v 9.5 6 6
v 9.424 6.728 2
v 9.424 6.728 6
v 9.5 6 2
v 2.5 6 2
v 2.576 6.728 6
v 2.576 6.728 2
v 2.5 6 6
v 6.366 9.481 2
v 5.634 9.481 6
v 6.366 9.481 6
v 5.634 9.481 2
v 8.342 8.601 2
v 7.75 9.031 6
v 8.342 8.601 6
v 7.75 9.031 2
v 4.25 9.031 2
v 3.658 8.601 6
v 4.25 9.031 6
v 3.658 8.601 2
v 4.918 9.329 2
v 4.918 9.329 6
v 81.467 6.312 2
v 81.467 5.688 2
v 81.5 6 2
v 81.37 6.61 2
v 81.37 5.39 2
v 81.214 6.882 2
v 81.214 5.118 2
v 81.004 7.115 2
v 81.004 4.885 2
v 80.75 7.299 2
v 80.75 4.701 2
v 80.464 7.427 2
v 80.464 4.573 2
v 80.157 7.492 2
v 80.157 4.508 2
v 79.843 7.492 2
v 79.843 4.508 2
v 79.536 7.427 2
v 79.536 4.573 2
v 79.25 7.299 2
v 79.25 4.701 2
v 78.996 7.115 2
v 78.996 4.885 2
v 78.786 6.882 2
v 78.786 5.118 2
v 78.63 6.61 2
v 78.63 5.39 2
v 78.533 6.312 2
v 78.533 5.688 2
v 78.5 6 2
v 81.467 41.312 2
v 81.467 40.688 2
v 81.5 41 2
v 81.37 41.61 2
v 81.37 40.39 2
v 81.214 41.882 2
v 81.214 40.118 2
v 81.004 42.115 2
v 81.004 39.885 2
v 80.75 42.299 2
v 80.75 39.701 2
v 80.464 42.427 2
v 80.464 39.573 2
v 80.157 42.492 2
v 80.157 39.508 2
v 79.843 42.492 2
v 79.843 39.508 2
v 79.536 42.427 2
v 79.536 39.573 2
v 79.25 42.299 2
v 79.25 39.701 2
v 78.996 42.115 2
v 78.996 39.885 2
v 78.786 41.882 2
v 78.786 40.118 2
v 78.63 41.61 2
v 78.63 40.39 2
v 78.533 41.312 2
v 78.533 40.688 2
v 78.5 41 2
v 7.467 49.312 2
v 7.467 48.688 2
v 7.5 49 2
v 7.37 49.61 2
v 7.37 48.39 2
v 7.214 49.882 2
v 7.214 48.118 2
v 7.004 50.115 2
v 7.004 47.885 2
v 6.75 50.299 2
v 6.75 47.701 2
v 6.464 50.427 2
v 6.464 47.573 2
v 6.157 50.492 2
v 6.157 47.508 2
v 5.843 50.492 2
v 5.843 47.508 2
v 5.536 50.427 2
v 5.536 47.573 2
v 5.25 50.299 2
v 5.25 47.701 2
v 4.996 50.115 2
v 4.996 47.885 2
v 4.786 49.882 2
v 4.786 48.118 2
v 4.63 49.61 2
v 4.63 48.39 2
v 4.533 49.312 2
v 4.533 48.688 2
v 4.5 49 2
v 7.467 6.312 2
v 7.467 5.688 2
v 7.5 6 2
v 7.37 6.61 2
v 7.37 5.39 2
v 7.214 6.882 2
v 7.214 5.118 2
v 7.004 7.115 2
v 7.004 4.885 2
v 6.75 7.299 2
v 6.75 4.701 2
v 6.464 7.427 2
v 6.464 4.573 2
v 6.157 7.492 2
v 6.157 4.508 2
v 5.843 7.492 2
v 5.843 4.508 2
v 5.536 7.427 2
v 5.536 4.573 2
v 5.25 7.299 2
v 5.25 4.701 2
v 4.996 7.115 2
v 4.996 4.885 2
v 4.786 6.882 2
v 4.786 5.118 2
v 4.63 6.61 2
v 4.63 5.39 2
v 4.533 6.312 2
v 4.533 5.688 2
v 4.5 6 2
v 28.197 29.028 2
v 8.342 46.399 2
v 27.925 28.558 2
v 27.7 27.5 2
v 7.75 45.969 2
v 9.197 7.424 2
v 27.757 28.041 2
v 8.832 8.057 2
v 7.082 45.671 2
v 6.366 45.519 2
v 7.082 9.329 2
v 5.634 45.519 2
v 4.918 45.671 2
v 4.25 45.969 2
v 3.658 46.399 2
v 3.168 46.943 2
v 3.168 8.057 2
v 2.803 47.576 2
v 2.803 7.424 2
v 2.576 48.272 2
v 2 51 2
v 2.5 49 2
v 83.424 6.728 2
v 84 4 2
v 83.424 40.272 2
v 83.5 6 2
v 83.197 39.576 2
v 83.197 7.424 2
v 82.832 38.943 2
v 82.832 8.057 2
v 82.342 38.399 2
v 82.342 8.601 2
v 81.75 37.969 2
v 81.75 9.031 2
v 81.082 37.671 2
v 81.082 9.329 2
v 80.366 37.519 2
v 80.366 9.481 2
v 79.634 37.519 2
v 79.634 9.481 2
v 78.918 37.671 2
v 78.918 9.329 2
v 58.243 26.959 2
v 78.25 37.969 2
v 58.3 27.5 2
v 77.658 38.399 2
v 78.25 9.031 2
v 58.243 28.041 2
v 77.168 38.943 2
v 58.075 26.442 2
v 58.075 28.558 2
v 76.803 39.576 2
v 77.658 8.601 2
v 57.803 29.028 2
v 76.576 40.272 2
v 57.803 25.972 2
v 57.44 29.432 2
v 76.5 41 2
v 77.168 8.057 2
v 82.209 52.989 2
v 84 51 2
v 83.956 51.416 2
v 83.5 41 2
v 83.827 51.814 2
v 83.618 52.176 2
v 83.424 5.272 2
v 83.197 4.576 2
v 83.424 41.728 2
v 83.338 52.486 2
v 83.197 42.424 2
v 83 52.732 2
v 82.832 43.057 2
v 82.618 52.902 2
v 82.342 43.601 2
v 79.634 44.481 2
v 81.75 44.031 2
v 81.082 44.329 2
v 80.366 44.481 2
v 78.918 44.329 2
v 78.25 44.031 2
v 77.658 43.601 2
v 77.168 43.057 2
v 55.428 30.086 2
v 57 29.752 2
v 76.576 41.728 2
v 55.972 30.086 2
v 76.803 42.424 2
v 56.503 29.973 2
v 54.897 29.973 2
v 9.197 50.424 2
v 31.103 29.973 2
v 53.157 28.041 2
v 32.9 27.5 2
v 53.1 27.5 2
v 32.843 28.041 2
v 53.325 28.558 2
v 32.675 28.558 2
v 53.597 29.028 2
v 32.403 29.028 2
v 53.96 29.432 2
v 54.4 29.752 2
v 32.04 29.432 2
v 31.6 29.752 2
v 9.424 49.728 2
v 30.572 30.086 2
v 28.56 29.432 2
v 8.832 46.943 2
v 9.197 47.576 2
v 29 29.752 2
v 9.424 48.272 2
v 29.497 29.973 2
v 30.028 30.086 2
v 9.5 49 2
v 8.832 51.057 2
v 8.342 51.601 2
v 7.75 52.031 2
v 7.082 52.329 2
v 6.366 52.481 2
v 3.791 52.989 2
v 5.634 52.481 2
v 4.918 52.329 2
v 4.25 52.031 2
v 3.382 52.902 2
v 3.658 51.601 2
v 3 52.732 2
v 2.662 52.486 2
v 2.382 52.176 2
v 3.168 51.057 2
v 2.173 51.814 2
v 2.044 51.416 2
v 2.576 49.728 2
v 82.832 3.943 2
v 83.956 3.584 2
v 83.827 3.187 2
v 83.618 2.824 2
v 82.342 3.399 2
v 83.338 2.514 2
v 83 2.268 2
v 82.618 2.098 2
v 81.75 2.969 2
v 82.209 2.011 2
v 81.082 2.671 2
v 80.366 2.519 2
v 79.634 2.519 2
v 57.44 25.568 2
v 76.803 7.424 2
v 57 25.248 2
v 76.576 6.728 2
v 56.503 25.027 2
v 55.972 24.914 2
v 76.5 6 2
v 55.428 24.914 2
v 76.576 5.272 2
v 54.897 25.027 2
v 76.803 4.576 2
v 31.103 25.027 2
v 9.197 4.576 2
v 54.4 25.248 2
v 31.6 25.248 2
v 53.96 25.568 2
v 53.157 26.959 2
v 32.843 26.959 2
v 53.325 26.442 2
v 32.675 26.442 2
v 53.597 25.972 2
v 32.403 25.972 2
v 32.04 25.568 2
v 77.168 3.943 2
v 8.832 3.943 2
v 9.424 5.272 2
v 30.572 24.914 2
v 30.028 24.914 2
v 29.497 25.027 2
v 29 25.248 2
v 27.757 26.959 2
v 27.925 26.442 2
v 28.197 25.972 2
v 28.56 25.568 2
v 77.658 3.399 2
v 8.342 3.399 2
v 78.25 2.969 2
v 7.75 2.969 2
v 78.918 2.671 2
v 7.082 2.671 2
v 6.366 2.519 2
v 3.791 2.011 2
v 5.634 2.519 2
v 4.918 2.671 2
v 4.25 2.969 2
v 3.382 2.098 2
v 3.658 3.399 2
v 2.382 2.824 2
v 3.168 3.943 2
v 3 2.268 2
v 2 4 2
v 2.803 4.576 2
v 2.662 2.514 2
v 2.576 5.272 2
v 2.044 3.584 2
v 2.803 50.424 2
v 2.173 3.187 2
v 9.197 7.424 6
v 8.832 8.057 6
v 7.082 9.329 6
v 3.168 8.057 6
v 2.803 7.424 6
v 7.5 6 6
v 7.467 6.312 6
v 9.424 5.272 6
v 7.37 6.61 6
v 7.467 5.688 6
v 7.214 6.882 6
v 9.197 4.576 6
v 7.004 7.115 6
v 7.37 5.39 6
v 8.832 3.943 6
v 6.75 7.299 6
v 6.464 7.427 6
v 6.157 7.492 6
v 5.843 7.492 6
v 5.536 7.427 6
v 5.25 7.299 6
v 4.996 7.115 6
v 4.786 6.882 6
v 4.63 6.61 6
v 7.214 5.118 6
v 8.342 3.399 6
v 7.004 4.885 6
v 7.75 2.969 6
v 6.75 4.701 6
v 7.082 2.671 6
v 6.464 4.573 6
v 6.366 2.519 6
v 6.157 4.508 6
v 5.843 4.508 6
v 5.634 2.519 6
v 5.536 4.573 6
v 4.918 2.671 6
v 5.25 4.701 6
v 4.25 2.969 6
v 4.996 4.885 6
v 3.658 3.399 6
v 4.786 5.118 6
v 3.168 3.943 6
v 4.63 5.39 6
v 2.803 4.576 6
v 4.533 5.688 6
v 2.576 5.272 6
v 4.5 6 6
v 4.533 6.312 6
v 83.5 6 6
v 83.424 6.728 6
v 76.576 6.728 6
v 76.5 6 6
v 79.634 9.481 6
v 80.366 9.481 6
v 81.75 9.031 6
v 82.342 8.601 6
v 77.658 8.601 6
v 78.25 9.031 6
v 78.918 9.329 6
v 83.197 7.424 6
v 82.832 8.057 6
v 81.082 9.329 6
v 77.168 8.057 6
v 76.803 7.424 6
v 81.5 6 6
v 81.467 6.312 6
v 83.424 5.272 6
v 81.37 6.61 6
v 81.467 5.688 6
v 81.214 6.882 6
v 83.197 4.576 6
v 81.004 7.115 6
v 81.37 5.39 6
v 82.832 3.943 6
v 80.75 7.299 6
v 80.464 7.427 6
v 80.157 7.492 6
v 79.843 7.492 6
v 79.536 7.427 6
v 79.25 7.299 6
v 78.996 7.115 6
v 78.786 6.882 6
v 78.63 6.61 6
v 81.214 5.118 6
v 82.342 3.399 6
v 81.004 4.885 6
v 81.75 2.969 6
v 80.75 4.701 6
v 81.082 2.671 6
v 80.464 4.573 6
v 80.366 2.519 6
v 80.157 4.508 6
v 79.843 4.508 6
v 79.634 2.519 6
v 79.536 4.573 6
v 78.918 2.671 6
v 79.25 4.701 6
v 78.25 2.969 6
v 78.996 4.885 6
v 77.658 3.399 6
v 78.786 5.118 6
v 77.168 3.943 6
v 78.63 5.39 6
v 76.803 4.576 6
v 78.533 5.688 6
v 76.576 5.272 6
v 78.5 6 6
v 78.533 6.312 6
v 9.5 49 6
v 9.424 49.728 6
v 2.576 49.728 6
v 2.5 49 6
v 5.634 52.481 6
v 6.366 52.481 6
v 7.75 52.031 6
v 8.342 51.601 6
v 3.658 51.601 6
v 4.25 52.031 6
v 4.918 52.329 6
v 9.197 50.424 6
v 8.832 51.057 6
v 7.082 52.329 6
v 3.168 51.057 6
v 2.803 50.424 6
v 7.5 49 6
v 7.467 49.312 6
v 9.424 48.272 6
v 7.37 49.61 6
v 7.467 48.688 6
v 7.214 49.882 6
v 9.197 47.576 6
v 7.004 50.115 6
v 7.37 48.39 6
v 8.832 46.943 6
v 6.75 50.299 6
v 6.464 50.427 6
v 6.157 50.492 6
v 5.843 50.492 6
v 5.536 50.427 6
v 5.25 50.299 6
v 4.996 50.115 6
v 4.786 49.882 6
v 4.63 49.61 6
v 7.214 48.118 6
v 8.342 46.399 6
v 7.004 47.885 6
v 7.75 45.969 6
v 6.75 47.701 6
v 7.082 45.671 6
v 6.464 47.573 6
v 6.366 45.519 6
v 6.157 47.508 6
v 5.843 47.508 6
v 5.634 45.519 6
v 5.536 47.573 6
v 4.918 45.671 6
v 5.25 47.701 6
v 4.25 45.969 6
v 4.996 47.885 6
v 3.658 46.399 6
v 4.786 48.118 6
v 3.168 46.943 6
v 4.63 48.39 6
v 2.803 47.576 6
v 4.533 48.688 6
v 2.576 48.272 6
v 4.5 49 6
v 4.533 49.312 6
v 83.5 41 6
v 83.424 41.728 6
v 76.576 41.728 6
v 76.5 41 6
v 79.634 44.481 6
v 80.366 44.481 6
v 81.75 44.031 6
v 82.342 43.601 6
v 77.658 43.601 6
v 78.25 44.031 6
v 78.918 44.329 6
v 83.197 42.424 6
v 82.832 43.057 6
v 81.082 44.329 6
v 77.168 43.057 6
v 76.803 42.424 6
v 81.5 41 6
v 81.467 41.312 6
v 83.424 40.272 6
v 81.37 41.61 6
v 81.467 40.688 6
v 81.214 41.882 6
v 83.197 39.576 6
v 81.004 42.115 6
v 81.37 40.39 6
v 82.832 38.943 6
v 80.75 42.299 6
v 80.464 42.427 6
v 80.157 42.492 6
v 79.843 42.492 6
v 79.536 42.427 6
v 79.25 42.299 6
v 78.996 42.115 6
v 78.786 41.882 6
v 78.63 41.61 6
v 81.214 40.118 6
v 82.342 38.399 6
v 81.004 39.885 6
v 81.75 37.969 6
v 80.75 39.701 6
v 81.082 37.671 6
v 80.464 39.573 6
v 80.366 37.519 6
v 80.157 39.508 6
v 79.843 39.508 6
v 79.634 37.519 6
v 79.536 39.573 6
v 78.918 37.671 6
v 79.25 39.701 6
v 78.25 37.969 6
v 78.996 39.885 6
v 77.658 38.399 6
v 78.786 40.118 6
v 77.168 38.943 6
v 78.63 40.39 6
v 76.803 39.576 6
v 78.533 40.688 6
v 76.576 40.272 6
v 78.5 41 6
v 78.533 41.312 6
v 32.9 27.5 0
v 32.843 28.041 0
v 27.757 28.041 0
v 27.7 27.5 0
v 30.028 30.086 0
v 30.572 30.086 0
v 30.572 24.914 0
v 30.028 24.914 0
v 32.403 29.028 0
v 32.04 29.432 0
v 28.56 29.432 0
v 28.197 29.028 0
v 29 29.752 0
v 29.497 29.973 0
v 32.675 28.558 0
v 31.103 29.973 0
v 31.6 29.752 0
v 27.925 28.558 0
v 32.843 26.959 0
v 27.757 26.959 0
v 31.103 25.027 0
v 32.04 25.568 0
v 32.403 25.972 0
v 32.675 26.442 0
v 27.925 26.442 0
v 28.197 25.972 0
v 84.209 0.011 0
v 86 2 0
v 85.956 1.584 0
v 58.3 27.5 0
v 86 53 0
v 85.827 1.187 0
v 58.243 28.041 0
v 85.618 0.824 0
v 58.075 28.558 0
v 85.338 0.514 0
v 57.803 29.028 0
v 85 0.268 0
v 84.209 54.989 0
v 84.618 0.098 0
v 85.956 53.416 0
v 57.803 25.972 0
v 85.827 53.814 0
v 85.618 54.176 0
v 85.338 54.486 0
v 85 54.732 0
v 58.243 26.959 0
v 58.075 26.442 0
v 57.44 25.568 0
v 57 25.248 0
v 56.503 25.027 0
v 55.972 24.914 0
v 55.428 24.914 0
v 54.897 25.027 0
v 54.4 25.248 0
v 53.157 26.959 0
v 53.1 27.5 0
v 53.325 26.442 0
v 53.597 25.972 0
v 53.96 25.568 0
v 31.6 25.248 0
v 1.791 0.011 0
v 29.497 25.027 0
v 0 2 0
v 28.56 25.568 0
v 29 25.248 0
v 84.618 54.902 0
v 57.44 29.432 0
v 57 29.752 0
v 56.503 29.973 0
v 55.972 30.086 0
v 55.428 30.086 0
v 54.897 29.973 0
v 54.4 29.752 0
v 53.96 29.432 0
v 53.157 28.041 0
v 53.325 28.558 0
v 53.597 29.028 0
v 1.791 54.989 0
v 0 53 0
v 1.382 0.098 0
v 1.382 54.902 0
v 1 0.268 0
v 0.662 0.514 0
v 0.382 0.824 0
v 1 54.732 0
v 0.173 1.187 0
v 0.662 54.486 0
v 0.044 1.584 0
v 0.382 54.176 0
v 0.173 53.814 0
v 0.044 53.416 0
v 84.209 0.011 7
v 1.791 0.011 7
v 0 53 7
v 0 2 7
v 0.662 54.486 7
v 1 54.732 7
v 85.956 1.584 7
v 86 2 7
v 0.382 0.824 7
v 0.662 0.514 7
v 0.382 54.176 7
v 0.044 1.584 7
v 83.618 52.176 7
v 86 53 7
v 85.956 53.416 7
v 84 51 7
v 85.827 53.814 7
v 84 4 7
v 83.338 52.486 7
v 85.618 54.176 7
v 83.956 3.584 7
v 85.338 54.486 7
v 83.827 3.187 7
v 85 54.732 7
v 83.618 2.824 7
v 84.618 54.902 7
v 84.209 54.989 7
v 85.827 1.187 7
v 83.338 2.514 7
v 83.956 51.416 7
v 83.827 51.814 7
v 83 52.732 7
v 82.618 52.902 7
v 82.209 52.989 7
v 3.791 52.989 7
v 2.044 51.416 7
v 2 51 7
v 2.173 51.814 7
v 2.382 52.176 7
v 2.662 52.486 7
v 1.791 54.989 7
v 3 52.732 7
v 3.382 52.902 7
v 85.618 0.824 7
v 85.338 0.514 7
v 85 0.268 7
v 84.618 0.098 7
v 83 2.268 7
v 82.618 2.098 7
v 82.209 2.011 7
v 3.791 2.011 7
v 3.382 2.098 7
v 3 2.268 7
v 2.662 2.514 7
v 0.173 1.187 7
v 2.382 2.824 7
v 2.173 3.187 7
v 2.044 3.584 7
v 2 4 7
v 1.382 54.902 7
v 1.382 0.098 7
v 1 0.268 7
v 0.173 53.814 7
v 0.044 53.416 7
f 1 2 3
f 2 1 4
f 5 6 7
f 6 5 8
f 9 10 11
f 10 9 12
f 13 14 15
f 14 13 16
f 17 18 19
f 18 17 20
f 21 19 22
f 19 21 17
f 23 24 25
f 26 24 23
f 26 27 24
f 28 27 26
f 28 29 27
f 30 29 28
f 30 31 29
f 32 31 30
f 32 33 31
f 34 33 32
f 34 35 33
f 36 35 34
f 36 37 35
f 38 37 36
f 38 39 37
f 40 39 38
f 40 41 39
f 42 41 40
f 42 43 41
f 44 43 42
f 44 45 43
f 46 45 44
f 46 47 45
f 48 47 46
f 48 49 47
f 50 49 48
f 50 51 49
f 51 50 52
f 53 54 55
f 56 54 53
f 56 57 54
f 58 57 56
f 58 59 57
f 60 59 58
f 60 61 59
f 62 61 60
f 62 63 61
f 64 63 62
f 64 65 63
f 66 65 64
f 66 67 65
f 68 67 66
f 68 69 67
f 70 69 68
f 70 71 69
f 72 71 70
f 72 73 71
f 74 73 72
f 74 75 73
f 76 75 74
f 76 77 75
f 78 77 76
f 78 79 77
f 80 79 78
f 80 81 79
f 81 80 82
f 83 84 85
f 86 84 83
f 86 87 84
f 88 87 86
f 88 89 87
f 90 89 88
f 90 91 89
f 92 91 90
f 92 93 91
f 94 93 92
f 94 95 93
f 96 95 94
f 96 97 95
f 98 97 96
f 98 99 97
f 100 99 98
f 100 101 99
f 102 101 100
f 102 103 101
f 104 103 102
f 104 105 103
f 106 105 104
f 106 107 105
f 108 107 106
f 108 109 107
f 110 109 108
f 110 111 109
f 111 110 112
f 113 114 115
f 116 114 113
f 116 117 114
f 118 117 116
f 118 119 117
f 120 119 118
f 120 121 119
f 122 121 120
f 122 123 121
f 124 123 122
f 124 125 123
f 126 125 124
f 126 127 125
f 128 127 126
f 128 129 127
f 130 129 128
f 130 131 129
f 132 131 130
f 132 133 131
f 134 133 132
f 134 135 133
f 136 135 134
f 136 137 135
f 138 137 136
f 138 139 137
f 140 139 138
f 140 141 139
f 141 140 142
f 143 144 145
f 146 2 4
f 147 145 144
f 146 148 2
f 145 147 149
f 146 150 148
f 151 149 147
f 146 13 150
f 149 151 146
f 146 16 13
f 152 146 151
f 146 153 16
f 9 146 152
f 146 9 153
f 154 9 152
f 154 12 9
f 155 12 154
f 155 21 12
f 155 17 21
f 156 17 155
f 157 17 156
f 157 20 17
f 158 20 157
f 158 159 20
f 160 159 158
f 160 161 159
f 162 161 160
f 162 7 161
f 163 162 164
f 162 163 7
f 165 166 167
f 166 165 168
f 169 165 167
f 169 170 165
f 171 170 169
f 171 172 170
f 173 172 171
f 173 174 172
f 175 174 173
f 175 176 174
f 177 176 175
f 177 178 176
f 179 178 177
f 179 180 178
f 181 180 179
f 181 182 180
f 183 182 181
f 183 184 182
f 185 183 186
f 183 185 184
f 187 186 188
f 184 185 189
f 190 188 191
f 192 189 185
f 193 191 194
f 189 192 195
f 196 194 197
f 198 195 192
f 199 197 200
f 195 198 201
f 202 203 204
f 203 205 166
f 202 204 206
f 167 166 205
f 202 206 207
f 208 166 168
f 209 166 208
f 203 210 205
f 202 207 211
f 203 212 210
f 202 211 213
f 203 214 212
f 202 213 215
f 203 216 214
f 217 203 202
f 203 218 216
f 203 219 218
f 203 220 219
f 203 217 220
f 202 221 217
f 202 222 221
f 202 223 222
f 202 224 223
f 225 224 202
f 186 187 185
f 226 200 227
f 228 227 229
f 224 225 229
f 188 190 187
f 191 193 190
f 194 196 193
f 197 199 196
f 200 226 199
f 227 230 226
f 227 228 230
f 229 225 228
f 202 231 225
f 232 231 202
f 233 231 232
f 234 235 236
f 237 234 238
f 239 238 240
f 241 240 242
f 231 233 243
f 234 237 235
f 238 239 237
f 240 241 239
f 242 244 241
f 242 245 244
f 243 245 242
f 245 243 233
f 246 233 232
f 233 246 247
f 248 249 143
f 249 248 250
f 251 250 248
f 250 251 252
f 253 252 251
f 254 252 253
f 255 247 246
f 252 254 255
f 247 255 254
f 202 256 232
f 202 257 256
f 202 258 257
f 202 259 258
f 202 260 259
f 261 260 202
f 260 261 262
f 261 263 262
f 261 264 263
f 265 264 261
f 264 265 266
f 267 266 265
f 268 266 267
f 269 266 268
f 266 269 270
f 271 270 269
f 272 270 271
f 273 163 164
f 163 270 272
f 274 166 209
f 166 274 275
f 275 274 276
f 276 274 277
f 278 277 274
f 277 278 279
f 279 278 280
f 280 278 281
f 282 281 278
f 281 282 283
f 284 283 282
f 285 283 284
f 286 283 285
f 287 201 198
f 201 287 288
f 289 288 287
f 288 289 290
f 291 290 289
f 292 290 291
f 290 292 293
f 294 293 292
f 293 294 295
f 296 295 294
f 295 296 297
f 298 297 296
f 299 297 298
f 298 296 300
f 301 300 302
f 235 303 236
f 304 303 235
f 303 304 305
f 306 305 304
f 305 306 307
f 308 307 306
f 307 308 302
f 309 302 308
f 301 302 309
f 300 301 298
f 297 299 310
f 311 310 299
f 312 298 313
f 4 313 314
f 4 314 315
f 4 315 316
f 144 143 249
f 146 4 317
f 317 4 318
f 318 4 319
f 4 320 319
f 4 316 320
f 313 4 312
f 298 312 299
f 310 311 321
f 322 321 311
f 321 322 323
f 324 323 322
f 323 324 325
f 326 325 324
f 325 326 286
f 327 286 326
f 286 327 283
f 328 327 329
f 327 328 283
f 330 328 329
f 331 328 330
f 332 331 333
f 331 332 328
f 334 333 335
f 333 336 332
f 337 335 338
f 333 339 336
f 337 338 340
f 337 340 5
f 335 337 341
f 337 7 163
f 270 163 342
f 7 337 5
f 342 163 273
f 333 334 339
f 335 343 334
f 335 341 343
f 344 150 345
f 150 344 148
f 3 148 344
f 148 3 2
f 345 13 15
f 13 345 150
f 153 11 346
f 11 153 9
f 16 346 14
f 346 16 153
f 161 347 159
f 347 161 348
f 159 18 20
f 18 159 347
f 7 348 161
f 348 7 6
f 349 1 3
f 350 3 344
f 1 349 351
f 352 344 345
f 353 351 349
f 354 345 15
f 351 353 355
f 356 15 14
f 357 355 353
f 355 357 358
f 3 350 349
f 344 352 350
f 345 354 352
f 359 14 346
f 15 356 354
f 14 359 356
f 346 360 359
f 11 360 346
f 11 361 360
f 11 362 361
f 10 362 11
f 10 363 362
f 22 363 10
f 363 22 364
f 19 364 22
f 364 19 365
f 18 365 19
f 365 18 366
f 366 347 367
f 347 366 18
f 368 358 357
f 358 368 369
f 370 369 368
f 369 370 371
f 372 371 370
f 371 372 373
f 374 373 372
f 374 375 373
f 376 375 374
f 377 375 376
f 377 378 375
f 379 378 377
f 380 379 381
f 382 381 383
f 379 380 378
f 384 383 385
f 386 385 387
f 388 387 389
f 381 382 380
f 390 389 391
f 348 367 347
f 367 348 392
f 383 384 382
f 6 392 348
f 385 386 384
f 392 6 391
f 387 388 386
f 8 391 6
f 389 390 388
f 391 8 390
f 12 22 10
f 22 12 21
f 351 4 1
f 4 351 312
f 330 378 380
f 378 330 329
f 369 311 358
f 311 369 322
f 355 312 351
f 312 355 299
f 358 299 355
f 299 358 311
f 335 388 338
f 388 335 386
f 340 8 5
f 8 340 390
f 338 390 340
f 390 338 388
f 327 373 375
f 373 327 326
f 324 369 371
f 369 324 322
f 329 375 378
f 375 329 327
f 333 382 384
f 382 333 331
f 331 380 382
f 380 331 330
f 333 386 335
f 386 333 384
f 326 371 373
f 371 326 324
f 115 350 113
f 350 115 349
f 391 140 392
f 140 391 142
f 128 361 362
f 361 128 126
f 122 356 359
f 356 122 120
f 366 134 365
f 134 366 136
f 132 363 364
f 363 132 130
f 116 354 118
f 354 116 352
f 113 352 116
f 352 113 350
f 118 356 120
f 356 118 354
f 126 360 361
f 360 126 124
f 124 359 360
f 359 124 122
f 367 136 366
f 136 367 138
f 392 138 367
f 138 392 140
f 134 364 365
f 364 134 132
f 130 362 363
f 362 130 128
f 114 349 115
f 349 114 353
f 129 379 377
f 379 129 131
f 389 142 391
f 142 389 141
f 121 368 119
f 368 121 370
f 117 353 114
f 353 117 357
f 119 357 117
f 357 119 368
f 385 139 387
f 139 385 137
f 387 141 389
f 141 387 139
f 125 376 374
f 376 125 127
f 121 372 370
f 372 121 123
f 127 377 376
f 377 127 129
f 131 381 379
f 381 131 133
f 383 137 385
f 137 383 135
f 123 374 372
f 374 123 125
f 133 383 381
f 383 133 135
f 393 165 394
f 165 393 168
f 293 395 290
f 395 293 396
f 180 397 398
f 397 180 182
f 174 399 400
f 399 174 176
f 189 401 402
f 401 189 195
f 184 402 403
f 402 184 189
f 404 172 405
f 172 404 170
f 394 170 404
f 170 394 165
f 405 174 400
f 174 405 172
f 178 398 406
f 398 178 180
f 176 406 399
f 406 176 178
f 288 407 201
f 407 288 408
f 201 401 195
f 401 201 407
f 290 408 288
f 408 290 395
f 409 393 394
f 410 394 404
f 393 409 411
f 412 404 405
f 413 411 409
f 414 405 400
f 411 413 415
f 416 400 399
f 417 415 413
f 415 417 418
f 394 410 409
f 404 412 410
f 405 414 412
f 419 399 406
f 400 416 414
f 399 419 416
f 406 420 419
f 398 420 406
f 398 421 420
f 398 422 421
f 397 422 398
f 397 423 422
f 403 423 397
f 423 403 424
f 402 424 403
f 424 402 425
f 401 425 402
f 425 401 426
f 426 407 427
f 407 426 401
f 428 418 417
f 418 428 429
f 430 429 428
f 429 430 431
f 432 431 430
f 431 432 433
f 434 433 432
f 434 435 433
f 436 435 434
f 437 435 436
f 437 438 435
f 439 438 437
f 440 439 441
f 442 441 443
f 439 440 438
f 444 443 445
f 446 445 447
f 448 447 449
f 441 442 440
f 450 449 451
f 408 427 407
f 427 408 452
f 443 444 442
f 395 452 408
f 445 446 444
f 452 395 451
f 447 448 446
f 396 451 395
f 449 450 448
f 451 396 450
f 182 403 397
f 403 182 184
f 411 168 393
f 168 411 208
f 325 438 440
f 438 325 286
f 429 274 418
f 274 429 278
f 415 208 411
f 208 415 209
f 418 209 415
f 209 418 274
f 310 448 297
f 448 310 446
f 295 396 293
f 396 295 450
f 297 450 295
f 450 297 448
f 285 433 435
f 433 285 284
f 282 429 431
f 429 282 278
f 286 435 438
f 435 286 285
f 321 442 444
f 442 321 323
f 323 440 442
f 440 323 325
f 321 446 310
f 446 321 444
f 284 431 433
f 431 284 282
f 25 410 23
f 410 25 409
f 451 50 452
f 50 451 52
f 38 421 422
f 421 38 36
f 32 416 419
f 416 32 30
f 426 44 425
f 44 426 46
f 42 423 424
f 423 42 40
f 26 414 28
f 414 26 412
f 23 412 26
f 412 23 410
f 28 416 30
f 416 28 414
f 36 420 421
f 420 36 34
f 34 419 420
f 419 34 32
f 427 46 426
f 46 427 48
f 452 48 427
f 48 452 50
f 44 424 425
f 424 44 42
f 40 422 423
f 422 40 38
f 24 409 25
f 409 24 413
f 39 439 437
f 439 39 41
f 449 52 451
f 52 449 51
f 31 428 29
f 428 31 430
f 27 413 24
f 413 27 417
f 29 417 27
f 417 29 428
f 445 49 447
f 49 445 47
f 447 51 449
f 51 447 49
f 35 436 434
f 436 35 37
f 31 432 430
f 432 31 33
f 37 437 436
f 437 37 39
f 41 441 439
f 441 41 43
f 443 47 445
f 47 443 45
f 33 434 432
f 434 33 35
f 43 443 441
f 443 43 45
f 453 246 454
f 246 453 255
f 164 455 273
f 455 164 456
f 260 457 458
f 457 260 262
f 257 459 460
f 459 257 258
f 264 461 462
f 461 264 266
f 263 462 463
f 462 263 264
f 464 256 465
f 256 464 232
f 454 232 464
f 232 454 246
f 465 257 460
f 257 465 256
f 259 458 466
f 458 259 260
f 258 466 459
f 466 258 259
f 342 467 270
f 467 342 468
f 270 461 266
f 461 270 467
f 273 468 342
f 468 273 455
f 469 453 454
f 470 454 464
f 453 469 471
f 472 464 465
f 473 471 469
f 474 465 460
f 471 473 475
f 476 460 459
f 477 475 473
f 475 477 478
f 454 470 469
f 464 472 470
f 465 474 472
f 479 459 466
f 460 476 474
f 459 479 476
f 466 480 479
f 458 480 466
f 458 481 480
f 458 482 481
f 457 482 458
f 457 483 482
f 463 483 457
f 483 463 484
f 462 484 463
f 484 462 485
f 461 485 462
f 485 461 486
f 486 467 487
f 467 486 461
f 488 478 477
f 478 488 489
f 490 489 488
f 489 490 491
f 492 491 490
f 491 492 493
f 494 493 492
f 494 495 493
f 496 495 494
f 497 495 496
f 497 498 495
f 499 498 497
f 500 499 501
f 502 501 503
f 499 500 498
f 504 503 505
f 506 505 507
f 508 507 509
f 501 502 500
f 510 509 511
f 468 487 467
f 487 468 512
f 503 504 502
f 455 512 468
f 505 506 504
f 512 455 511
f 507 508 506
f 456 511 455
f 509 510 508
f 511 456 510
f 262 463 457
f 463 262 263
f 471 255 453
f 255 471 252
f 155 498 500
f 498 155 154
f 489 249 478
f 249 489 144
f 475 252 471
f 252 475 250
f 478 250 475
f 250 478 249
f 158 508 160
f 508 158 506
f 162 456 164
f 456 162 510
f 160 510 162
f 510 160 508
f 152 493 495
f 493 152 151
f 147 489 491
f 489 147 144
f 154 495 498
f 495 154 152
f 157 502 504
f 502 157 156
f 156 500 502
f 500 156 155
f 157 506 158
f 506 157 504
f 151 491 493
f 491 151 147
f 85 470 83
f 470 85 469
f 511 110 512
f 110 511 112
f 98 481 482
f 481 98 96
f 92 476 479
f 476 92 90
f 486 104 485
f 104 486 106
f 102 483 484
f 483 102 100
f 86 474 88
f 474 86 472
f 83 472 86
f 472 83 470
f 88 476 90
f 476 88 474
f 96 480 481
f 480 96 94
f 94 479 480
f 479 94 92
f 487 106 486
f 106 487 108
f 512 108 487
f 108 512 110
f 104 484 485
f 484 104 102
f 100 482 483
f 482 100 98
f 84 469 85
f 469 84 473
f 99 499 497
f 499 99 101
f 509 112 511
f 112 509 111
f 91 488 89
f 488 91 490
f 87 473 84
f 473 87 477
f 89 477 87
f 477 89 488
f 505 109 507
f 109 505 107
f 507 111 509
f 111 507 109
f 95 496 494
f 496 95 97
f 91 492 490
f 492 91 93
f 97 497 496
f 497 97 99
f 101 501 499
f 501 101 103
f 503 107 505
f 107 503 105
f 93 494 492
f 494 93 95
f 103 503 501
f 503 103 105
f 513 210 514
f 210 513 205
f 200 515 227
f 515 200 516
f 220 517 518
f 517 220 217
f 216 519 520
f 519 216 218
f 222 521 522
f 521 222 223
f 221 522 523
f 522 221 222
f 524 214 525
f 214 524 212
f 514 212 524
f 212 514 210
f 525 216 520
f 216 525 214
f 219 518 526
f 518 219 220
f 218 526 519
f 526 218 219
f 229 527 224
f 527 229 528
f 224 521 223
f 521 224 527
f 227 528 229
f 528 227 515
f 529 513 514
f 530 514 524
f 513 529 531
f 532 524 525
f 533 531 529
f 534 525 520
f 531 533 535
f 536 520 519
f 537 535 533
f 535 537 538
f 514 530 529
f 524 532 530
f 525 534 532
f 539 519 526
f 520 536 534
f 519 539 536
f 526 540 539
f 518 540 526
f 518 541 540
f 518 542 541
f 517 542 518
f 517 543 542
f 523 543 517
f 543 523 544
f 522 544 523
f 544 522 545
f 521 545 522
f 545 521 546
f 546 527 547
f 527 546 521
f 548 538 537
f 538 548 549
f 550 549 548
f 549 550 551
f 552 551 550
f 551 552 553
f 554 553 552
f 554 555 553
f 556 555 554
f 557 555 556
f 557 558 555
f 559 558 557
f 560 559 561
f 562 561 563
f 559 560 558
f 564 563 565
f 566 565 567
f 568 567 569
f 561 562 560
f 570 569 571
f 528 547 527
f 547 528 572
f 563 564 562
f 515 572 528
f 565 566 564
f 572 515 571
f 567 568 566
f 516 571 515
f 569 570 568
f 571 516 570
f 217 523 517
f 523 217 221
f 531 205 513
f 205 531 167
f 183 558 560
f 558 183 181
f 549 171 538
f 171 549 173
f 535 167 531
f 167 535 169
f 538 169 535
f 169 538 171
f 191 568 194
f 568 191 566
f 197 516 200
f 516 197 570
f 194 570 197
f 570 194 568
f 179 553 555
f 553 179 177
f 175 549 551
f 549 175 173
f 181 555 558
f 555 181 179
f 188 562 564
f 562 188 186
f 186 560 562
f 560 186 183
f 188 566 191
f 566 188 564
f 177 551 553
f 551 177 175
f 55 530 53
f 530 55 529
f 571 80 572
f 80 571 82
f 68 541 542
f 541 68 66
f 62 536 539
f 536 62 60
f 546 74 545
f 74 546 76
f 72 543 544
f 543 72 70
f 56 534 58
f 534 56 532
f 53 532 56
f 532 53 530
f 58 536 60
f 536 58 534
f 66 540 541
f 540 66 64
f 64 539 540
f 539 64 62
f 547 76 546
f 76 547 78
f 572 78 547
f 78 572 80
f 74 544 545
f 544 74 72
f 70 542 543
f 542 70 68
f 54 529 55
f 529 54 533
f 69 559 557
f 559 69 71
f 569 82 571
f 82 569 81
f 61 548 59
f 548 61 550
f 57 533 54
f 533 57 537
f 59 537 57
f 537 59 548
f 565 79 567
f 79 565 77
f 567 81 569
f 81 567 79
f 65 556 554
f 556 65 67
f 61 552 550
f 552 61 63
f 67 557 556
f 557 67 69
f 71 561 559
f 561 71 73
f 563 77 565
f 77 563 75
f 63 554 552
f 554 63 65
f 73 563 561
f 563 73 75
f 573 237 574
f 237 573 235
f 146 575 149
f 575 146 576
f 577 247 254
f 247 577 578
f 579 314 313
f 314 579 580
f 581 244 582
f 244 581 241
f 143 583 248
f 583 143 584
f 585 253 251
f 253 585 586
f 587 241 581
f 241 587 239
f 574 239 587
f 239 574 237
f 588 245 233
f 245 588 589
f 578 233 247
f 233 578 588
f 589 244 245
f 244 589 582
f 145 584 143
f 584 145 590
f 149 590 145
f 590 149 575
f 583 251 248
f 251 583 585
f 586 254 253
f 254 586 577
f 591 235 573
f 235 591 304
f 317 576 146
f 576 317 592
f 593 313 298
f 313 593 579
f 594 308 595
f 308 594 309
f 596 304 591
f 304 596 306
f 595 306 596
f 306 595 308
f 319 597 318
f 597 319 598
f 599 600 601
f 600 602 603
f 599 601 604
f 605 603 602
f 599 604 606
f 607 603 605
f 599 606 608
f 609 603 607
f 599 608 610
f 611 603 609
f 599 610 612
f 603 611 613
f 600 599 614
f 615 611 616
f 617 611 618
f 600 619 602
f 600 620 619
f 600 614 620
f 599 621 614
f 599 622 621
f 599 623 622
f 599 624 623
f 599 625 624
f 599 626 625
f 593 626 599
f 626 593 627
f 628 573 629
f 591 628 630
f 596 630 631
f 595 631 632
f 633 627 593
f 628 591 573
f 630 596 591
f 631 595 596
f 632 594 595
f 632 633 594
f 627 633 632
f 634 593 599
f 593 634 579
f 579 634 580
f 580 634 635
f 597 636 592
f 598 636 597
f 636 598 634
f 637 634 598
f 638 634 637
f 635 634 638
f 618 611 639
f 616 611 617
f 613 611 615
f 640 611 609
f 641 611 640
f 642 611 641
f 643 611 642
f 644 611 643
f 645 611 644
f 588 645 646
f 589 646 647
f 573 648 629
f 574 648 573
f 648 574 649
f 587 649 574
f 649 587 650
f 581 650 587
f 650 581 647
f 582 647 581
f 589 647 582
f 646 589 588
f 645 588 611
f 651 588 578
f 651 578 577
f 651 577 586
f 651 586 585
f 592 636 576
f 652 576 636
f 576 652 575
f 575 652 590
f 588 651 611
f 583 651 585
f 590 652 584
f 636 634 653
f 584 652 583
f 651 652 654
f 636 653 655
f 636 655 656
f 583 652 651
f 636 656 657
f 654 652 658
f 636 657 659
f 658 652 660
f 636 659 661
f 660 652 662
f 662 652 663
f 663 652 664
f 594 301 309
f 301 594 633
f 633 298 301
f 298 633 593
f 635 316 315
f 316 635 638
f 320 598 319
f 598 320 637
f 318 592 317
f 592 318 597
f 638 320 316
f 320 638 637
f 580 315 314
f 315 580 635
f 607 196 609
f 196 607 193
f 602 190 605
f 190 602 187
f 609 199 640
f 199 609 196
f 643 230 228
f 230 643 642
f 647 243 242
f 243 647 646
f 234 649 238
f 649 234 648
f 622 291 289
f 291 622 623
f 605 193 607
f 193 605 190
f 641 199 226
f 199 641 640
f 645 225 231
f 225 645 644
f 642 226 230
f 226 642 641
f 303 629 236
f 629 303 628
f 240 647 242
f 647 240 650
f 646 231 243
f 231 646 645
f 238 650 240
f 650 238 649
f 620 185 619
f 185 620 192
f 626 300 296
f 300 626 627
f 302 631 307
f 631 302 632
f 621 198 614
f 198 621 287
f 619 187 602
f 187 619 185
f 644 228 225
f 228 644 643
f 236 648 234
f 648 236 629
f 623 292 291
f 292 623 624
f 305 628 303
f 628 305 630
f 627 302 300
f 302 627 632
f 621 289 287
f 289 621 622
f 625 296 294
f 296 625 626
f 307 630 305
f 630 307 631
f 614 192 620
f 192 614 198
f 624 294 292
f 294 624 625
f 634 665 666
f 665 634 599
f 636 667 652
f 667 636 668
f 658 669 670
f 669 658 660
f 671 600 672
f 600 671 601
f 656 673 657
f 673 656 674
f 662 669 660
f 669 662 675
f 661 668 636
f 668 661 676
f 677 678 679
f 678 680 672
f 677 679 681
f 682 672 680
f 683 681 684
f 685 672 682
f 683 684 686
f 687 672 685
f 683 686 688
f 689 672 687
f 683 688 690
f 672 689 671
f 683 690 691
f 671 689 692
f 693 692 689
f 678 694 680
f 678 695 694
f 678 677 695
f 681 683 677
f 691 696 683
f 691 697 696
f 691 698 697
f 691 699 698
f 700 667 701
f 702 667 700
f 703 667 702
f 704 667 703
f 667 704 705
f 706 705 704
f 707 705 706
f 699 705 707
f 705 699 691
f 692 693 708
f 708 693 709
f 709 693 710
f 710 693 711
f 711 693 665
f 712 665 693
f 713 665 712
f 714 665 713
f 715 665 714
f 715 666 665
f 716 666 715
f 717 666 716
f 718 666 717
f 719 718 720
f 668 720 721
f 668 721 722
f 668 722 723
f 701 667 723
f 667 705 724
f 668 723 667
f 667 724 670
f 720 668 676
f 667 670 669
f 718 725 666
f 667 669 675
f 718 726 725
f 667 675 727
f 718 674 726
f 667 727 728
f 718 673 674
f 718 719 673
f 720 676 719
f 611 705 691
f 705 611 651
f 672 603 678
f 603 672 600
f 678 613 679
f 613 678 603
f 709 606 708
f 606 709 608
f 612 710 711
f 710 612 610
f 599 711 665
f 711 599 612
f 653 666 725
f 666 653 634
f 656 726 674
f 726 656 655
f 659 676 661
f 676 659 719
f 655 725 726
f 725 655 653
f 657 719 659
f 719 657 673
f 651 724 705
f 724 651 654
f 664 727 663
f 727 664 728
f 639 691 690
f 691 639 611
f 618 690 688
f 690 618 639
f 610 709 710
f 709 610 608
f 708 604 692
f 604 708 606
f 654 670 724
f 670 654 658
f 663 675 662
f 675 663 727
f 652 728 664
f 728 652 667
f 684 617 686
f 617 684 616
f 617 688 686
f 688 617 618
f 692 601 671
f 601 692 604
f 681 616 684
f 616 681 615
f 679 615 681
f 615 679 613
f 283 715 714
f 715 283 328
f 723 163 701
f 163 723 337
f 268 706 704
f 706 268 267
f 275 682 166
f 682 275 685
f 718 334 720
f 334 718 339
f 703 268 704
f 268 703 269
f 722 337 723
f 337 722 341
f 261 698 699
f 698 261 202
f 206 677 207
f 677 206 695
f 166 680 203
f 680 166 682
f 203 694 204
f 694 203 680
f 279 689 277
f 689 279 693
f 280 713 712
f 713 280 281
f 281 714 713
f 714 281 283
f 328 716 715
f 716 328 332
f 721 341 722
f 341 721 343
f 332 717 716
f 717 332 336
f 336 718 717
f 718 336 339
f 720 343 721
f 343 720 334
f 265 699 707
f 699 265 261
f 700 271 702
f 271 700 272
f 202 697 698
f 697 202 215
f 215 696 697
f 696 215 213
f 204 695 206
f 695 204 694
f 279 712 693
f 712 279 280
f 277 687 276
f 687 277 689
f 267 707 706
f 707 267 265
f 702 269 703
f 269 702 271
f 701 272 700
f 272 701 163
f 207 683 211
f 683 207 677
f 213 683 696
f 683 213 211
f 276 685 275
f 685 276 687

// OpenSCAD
// file: ../../SoMakeIt-Keyring/logo.scad
/*
 * So Make It (http://www.somakeit.org.uk/) Logo Key Ring
 *
 * Copyright (c) 2013 Mark Hindess & Bracken Dawson
 * License:
 *   Creative Commons Attribution-ShareAlike 3.0 Unported License
 *   http://creativecommons.org/licenses/by-sa/3.0
 */

thickness = 2.5;
size = 30;
corner_radius = 6;
hole_radius = 2;
$fn = 30;

somakeit_logo(thickness, size, corner_radius, hole_radius, 30);

module somakeit_logo(thickness, size, corner_radius, hole_radius, $fn) {

difference() {

  // simple rounded square
  hull() {
    translate([corner_radius, corner_radius, 0])
      cylinder(r = corner_radius, h = thickness, center = true);
    translate([size-corner_radius, corner_radius, 0])
      cylinder(r = corner_radius, h = thickness, center = true);
    translate([size-corner_radius, size-corner_radius, 0])
      cylinder(r = corner_radius, h = thickness, center = true);
    translate([corner_radius, size-corner_radius, 0])
      cylinder(r = corner_radius, h = thickness, center = true);
  }
  // slightly off center to allow for "handle"
  translate([size/2, size/2.3, 0]) {
    difference() {
      // large octagon
      rotate([0,0,22.5])
        cylinder(r = size/3, h = thickness+2, center = true, $fn = 8);

      // central bar
      translate([0,-(1+size/6),-1])
        cube([size/4, 1+size/3, thickness+3], center = true);
      // octagonal end of central bar
      rotate([0,0,22.5])
        cylinder(r = size/(8*cos(22.5)), h = thickness+3,
                 $fn = 8, center = true);
    }

    // handle
    translate([0,size/3,-1])
      cube([size/4, size/4, thickness+3], center = true);
  }

  // hole for attachment
  translate([size-hole_radius-(corner_radius/2),
             size-hole_radius-(corner_radius/2), 0])
    cylinder(r = hole_radius, h = thickness+2, center = true);
}

}  // module somakeit_logo
// main file
// *************************************************************************
/*
This program is free software: you can redistribute it and/or modify
it under the terms of the GNU General Public License as published by
the Free Software Foundation, either version 3 of the License, or
(at your option) any later version.

This program is distributed in the hope that it will be useful,
but WITHOUT ANY WARRANTY; without even the implied warranty of
MERCHANTABILITY or FITNESS FOR A PARTICULAR PURPOSE.  See the
GNU General Public License for more details.

You should have received a copy of the GNU General Public License
along with this program.  If not, see <http://www.gnu.org/licenses/>.
*/

// *************************************************************************

use <MCAD/polyholes.scad>;

// Box configuration
eps = 1.0;
wall_thickness         =   2.0;    // mm
box_external_length   = 81 + eps + wall_thickness * 2.0;    // mm
box_external_width    = 50 + eps + wall_thickness * 2.0;    // mm
box_external_height   =  5.0 + 2 * wall_thickness;    // mm
lid_tolerance          =   0.5;  // mm

// PCB mount configuration
// If pcb_mount_pos_vector set to describe mount positions then use this, if not set then rectangular with length pcb_mount_pitch_length and width pcb_mount_pitch_width
pcb_mount_pitch_length =  74.0;    // mm 
pcb_mount_pitch_width  =  43.0;    // mm
pcb_mount_pos_vec      = [[0,0],[0,43.0],[74.0, 35.0],[74.0, 0]];
pcb_mount_radius       =   1.5;  // mm
pcb_mount_height       =   4.0;    // mm
pcb_mount_insert_depth =   4;    // mm
pcb_mount_origin       = [(box_external_length - pcb_mount_pitch_length) - wall_thickness * 2.0, (box_external_width - pcb_mount_pitch_width) / 2.0]; // mm
pcb_mount_auto_centre  = true;

// Lid mount configuration
lid_mount = false;
lid_mount_pitch_length =  box_external_length - wall_thickness * 2.0 - 10;   // mm
lid_mount_pitch_width  =  box_external_width - wall_thickness * 2.0 - 10;   // mm
lid_mount_radius       =   1.5;  // mm
lid_mount_height       =   box_external_height  - wall_thickness * 3.0;    // mm
lid_mount_insert_depth =   9.7;    // mm
lid_mount_origin       = [(box_external_length - lid_mount_pitch_length) / 2.0 + 5.0/* - (lid_mount_radius * 2.0 )*/, (box_external_width - lid_mount_pitch_width) / 2.0]; // mm
lid_hole_countersink = false;
lid_mount_auto_centre  = true;

// Mains socket?
mains_socket = false;
mains_socket_width = 28.5;  // mm
mains_socket_height = 20.5;  // mm
mains_socket_mount_pitch = 40.0; //mm
mains_socket_mount_d = 4.0;  //mm

// grommet?
grommet = false;
grommet_type = "rectangular";
grommet_width =  8.25;  // mm
grommet_height =  5.25;  // mm

// Screw holes throught the base ?
base_mount_holes = true;
base_mount_holes_pos_vec = [[0, 0], [25.4, 0]];
base_mount_holes_origin = [(box_external_length - 25.4) / 2.0/* - (lid_mount_radius * 2.0 )*/, (box_external_width - 0) / 2.0]; // mm;
base_mount_holes_radius  = 2.6;


// Style configuration
corner_style    = "rounded";  // only style currently available
rounding_radius = wall_thickness;
cylinder_faces  = 30;

logo           = false;
// Logo configuration
logo_thickness     =  2.5;
logo_size          = 30;
logo_corner_radius =  6;
logo_hole_radius   =  2;
logo_fn            = 30;
logo_origin        = [ 30, 20 ]; //mm

// Compute the expensive, albeit elegant Minkowski Sum 
// to generate the rounded box corners
use_minkowski = false;

use <../../SoMakeIt-Keyring/logo.scad>

union() {
                
    // The lid
    %difference() {
        union() {
            translate ([wall_thickness + lid_tolerance,
                        wall_thickness + lid_tolerance,
                        box_external_height - 2.0 * wall_thickness]) {
                color("SeaGreen", a = 0.5) {
                    rounded_box(box_external_length - 2.0 * wall_thickness - 2.0 * lid_tolerance,
                                box_external_width - 2.0 * wall_thickness - 2.0 * lid_tolerance,
                                wall_thickness, rounding_radius);
                }
            }
            
            translate([0, 0, box_external_height - wall_thickness]) {
                rounded_box(box_external_length,
                        box_external_width,
                        wall_thickness, rounding_radius);
            }
            
            if (logo == true) {
                translate ([logo_origin[0], logo_origin[1], box_external_height]) {
                    somakeit_logo(logo_thickness, logo_size,
                                    logo_corner_radius, logo_hole_radius,
                                    logo_fn);
                }
            }
        }
        // The lid screw holes and countersinks
        if (lid_mount == true) {
            translate([0, 0, box_external_height - 1.0 * wall_thickness]) translate (lid_mount_origin) { 
                screw_holes(lid_mount_pitch_length,
                              lid_mount_pitch_width,
                              "undef",    // TODO: sort this horrible hack out by naming arguments
                              lid_mount_radius,
                              wall_thickness,
                              lid_hole_countersink);
            }
        }
        
        translate ([wall_thickness * 2.0 + lid_tolerance,
                        wall_thickness * 2.0 + lid_tolerance,
                        box_external_height - 2.0 * wall_thickness]) {
                color("SeaGreen", a = 0.5) {
                    rounded_box(box_external_length - 4.0 * wall_thickness - lid_tolerance,
                                box_external_width - 4.0 * wall_thickness - lid_tolerance,
                                wall_thickness, rounding_radius);
                }
            }
    }
    
    // The main body of the box
    difference() {
        rounded_box(box_external_length,
                    box_external_width,
                    box_external_height - wall_thickness,
                    rounding_radius);
    
        translate ([wall_thickness, wall_thickness, wall_thickness]) {
            rounded_box(box_external_length - 2.0 * wall_thickness,
                        box_external_width - 2.0 * wall_thickness,
                        box_external_height - 2.0 * wall_thickness,
                        rounding_radius);
        }
        
        // Mains socket cutout
        if (mains_socket) {
            union() {
                translate([wall_thickness / 2.0 - 1.0, box_external_width / 2.0, box_external_height / 2.0]) {
                    cube([wall_thickness + 2.0, mains_socket_width, mains_socket_height], center=true);
                    translate ([-wall_thickness / 2.0, -mains_socket_mount_pitch / 2.0, 0]) rotate([0,90,0]) polyhole(d = mains_socket_mount_d, h = wall_thickness + 2.0);
                    translate ([-wall_thickness / 2.0, mains_socket_mount_pitch / 2.0, 0]) rotate([0,90,0]) polyhole(d = mains_socket_mount_d, h = wall_thickness + 2.0);
                }
            }
        }
        
        if (grommet) {
            if (grommet_type == "rectangular") {
                translate([box_external_length - wall_thickness / 2.0 + 1.0, box_external_width / 2.0, wall_thickness + 12.0]) {
                    cube([wall_thickness + 2.0, grommet_width, grommet_height], center=true);
                }
            }
        }
        
        // Base mount holes
        if (base_mount_holes)  {
            translate (base_mount_holes_origin) { 
                    screw_holes(pcb_mount_pitch_length,
                                pcb_mount_pitch_width,
                                base_mount_holes_pos_vec,
                                base_mount_holes_radius,
                                wall_thickness,
                                false);
            }
        }

    }
     // The PCB mounts
     if (pcb_mount_auto_centre) {
        pcb_mount_origin = [ (box_external_length - pcb_mount_pitch_length) / 2.0, (box_external_width - pcb_mount_pitch_width) / 2.0];
         translate (pcb_mount_origin) { 
            screw_mount(pcb_mount_pitch_length,
                        pcb_mount_pitch_width,
                        pcb_mount_pos_vec,
                        pcb_mount_radius,
                        pcb_mount_height,
                        pcb_mount_insert_depth);
         }
    } else {
        translate (pcb_mount_origin) { 
            screw_mount(pcb_mount_pitch_length,
                        pcb_mount_pitch_width,
                        pcb_mount_pos_vec,
                        pcb_mount_radius,
                        pcb_mount_height,
                        pcb_mount_insert_depth);
        }
    }
    
    // The lid screw mounts
    if (lid_mount == true) {
        if (lid_mount_auto_centre) {
            lid_mount_origin = [ (box_external_length - lid_mount_pitch_length) / 2.0, (box_external_width - lid_mount_pitch_width) / 2.0];
            translate (lid_mount_origin) { 
                screw_mount(lid_mount_pitch_length,
                              lid_mount_pitch_width,
                              lid_mount_radius,
                              lid_mount_height,
                              lid_mount_insert_depth);
             }
        } else {
            translate (lid_mount_origin) { 
                screw_mount(lid_mount_pitch_length,
                              lid_mount_pitch_width,
                              lid_mount_radius,
                              lid_mount_height,
                              lid_mount_insert_depth);
            }
        }
    }
}


module rounded_box(length, width, height, r) {

    if (use_minkowski) {
        
        minkowski() {

            cylinder(r = wall_thickness, h = 1);

            cube(size=[ length - wall_thickness,
                        width - wall_thickness,
                        height ], center = false);

        }
        
    } else {
        
        hull() {
            translate([r,r,0]) cylinder(r = r, h = height, $fn = cylinder_faces);
            translate([length-r,r,0]) cylinder(r = r, h = height, $fn = cylinder_faces);
            translate([length-r,width-r,0]) cylinder(r = r, h = height, $fn = cylinder_faces);
            translate([r,width-r,0]) cylinder(r = r, h = height, $fn = cylinder_faces);
        }
    }

}

// TODO: convert to polyhole()
module mount_hole(radius, height, insert_depth) {

    width = 2.0; // mm

    difference() {
        cylinder(r = radius + width, h = height, center = true, $fn = cylinder_faces);
        translate([0, 0, (height - insert_depth) / 2.0]) cylinder(r = radius, h = insert_depth, center = true, $fn = cylinder_faces);
    }

}

// TODO: convert to polyhole()
module screw_hole(radius, height, cs) {

    cs_r = 2.0; // mm
    cs_h = 2.0; // mm

    union() {
        if (cs == true) {
            cylinder(r1 = radius, r2 = radius + cs_r, h = cs_h, center = true, $fn = cylinder_faces);
        }
        cylinder(r = radius, h = height, center = true, $fn = cylinder_faces);
    }

}

module screw_mount(pitch_length, pitch_width, pos_vec = "undef", radius, height, insert_depth) {
 
    translate([0, 0, height / 2.0 + wall_thickness]) {
        union () {
            if (pos_vec == "undef") {
                
                    for (i = [0:1]) {
                        for (j = [0:1]) {
                            translate([j * pitch_length, i * pitch_width, 0]) {
                                mount_hole(radius, height, insert_depth);
                            }
                        }
                    }
               
            } else {
                for (i = pos_vec) {
                    translate([i[0], i[1], 0]) {
                        mount_hole(radius, height, insert_depth);
                    }
                }
            }
        }
    }
    
}

module screw_holes(pitch_length, pitch_width, pos_vec = "undef", radius, height, cs = false) {
 
    translate([0, 0, height / 2.0]) {
        union() {
            if (pos_vec == "undef") {
                for (i = [0:1]) {
                    for (j = [0:1]) {
                        translate([j * pitch_length, i * pitch_width, 0]) {
                            screw_hole(radius, height, cs);
                        }
                    }
                }
            } else {
                for (i = pos_vec) {
                    translate([i[0], i[1], 0]) {
                        screw_hole(radius, height, cs);
                    }
                }
            }
        }
    }
    
}
